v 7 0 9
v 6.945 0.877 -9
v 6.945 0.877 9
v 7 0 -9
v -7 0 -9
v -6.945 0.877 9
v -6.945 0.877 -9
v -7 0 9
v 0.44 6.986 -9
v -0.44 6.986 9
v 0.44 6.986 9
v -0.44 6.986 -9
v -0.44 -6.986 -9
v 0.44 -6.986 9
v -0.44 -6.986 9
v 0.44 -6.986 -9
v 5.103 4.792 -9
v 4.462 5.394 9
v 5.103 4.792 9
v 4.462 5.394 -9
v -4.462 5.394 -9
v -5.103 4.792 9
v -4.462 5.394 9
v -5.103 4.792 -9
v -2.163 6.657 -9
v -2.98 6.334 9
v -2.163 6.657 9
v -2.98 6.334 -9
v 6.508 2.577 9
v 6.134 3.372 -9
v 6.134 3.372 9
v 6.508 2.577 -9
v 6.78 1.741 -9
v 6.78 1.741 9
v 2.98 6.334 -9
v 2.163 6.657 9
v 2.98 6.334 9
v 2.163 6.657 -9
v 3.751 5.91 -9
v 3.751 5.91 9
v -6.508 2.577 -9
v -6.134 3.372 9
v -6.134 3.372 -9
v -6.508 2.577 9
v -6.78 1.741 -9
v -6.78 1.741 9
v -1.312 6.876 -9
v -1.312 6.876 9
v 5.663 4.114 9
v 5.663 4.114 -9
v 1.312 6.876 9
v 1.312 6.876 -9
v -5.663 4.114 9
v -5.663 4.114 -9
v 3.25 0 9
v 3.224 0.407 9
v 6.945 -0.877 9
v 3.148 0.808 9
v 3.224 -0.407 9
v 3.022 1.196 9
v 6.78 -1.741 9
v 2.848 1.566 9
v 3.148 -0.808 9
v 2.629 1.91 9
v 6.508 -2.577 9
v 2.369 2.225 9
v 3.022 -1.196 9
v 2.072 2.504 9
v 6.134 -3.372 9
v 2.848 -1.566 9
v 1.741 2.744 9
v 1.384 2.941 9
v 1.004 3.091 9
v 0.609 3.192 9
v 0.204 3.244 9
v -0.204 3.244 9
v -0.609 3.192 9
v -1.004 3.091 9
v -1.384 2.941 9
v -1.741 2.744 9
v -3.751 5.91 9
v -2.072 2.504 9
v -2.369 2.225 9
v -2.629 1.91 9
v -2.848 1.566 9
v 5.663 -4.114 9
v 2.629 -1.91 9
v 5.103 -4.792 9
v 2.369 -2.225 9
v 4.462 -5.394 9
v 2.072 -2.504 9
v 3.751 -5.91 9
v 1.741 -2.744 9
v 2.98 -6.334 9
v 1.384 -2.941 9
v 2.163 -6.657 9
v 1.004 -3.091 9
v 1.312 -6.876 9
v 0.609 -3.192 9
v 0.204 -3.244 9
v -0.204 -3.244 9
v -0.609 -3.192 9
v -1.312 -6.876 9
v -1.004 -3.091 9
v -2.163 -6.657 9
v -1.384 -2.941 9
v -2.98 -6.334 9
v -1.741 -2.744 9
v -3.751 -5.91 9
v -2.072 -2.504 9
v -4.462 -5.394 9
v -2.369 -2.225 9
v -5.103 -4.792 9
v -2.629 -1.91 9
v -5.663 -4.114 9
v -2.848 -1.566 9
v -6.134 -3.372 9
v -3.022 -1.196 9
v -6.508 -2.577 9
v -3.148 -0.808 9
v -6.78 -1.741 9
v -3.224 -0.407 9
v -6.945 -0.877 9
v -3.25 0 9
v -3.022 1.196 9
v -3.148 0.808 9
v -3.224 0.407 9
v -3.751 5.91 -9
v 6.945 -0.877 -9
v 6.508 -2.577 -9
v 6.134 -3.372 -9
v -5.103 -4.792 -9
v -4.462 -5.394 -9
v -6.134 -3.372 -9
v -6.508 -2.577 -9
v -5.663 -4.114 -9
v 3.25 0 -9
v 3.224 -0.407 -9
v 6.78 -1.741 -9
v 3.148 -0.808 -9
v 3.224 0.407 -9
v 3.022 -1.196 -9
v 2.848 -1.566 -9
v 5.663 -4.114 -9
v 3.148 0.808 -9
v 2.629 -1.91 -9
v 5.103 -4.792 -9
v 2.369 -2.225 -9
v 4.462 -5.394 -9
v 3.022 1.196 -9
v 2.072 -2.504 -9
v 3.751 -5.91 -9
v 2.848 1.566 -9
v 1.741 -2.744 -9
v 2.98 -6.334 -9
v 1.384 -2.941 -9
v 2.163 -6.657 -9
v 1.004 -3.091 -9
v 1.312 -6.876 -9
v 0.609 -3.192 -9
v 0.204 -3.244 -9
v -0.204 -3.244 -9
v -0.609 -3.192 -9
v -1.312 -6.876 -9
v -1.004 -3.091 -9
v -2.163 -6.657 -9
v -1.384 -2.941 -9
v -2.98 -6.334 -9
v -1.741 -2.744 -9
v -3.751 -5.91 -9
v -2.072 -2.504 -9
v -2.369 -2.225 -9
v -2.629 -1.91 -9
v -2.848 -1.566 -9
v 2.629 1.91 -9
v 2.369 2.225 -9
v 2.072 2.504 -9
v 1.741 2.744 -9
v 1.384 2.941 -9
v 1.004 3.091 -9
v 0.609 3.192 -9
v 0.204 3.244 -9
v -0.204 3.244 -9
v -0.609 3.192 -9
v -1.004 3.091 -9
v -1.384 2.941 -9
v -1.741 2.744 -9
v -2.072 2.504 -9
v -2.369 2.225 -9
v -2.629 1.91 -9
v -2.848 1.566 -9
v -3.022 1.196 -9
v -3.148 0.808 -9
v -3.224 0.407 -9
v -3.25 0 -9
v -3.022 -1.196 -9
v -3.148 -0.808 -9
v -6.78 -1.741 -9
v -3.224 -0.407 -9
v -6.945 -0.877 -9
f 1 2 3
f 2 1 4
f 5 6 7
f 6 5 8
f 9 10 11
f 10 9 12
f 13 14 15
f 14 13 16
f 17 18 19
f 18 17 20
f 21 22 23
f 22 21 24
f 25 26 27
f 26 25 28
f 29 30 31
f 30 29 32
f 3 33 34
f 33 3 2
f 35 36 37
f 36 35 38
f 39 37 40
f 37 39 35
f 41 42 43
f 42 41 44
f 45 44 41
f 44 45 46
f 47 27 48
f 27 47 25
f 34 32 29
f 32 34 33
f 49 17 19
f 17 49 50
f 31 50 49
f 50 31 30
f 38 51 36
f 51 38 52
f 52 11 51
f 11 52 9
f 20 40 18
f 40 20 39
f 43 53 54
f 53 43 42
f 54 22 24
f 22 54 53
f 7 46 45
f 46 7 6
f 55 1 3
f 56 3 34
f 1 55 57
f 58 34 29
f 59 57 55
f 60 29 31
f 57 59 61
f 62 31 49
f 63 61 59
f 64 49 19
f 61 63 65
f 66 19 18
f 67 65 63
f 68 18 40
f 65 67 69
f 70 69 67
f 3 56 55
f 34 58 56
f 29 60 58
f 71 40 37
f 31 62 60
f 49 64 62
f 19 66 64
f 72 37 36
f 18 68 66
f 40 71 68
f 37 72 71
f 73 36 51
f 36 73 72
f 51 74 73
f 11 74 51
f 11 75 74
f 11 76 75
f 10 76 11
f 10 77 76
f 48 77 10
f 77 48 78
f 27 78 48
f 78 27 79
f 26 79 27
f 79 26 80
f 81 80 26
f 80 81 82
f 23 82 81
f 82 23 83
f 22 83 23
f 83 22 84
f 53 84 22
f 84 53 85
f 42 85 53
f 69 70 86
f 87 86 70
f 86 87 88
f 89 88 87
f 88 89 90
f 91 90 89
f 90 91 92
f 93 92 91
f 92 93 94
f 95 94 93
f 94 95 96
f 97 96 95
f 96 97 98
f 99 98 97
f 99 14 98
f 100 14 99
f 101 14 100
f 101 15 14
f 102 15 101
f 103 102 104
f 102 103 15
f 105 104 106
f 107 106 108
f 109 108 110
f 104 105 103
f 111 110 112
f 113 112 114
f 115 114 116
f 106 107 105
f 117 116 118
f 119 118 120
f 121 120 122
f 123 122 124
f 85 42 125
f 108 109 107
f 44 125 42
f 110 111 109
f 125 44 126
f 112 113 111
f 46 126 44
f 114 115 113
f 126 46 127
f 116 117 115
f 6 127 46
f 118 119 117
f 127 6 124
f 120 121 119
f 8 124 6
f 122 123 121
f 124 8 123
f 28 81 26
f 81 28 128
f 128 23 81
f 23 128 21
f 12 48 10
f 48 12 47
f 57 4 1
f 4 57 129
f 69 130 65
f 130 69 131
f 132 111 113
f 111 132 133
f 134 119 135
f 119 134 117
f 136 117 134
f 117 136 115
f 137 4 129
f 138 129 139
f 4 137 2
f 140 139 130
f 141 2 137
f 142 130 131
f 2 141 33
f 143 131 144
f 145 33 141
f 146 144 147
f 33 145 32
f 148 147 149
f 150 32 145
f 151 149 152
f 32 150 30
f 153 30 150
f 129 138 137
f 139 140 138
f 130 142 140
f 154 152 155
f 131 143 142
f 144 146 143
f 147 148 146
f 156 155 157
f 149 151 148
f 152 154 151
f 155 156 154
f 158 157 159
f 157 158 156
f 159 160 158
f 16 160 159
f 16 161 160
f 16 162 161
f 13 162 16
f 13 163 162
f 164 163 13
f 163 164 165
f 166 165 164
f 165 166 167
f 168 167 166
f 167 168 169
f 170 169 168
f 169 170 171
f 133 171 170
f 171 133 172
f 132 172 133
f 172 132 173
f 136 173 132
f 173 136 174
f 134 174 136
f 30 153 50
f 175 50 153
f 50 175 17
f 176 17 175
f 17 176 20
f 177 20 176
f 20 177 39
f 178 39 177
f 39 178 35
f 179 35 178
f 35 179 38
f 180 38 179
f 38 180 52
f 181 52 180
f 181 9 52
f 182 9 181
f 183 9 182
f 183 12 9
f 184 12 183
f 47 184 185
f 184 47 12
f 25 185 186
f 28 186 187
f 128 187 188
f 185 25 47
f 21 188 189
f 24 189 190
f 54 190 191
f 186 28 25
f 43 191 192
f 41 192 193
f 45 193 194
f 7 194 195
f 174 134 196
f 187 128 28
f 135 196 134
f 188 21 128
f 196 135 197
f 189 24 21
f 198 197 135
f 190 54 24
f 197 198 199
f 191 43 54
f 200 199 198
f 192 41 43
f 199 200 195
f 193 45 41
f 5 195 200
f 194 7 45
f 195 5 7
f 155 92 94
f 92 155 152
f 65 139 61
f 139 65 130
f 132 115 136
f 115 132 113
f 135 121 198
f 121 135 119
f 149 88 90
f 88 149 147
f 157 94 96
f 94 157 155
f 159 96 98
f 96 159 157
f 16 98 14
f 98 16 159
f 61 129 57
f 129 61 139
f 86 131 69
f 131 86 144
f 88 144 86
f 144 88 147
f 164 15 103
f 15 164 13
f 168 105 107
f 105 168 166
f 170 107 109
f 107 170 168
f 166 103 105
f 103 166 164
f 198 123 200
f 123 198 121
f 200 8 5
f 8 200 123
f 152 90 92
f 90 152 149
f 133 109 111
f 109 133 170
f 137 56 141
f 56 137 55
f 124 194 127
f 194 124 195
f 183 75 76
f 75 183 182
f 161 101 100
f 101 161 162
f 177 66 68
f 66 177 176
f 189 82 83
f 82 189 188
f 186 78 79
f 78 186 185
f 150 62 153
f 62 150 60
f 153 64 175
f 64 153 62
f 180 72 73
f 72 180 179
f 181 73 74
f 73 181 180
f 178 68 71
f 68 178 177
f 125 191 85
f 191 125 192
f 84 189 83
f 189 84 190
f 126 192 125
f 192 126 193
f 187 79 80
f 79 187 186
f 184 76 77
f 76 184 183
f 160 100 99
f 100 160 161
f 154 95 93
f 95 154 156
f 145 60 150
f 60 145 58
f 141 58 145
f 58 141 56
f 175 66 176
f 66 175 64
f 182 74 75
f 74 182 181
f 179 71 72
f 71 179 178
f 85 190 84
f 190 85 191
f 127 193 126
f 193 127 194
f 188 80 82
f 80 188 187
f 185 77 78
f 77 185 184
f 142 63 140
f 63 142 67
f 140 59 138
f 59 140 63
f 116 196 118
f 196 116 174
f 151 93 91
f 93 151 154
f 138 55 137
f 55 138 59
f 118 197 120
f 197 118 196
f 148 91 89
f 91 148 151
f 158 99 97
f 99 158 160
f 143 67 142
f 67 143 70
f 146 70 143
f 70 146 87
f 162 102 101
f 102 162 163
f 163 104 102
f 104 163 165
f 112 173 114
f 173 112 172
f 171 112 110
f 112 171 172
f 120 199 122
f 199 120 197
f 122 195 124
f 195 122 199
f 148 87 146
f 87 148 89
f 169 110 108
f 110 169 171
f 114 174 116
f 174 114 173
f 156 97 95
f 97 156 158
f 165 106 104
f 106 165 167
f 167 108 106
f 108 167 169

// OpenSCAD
$fn = 50;


difference() {
	union() {
		translate(v = [0, 0, -9.0000000000]) {
			cylinder(h = 18, r = 7.0000000000);
		}
	}
	union() {
		translate(v = [0, 0, -100.0000000000]) {
			cylinder(h = 200, r = 3.2500000000);
		}
	}
}
